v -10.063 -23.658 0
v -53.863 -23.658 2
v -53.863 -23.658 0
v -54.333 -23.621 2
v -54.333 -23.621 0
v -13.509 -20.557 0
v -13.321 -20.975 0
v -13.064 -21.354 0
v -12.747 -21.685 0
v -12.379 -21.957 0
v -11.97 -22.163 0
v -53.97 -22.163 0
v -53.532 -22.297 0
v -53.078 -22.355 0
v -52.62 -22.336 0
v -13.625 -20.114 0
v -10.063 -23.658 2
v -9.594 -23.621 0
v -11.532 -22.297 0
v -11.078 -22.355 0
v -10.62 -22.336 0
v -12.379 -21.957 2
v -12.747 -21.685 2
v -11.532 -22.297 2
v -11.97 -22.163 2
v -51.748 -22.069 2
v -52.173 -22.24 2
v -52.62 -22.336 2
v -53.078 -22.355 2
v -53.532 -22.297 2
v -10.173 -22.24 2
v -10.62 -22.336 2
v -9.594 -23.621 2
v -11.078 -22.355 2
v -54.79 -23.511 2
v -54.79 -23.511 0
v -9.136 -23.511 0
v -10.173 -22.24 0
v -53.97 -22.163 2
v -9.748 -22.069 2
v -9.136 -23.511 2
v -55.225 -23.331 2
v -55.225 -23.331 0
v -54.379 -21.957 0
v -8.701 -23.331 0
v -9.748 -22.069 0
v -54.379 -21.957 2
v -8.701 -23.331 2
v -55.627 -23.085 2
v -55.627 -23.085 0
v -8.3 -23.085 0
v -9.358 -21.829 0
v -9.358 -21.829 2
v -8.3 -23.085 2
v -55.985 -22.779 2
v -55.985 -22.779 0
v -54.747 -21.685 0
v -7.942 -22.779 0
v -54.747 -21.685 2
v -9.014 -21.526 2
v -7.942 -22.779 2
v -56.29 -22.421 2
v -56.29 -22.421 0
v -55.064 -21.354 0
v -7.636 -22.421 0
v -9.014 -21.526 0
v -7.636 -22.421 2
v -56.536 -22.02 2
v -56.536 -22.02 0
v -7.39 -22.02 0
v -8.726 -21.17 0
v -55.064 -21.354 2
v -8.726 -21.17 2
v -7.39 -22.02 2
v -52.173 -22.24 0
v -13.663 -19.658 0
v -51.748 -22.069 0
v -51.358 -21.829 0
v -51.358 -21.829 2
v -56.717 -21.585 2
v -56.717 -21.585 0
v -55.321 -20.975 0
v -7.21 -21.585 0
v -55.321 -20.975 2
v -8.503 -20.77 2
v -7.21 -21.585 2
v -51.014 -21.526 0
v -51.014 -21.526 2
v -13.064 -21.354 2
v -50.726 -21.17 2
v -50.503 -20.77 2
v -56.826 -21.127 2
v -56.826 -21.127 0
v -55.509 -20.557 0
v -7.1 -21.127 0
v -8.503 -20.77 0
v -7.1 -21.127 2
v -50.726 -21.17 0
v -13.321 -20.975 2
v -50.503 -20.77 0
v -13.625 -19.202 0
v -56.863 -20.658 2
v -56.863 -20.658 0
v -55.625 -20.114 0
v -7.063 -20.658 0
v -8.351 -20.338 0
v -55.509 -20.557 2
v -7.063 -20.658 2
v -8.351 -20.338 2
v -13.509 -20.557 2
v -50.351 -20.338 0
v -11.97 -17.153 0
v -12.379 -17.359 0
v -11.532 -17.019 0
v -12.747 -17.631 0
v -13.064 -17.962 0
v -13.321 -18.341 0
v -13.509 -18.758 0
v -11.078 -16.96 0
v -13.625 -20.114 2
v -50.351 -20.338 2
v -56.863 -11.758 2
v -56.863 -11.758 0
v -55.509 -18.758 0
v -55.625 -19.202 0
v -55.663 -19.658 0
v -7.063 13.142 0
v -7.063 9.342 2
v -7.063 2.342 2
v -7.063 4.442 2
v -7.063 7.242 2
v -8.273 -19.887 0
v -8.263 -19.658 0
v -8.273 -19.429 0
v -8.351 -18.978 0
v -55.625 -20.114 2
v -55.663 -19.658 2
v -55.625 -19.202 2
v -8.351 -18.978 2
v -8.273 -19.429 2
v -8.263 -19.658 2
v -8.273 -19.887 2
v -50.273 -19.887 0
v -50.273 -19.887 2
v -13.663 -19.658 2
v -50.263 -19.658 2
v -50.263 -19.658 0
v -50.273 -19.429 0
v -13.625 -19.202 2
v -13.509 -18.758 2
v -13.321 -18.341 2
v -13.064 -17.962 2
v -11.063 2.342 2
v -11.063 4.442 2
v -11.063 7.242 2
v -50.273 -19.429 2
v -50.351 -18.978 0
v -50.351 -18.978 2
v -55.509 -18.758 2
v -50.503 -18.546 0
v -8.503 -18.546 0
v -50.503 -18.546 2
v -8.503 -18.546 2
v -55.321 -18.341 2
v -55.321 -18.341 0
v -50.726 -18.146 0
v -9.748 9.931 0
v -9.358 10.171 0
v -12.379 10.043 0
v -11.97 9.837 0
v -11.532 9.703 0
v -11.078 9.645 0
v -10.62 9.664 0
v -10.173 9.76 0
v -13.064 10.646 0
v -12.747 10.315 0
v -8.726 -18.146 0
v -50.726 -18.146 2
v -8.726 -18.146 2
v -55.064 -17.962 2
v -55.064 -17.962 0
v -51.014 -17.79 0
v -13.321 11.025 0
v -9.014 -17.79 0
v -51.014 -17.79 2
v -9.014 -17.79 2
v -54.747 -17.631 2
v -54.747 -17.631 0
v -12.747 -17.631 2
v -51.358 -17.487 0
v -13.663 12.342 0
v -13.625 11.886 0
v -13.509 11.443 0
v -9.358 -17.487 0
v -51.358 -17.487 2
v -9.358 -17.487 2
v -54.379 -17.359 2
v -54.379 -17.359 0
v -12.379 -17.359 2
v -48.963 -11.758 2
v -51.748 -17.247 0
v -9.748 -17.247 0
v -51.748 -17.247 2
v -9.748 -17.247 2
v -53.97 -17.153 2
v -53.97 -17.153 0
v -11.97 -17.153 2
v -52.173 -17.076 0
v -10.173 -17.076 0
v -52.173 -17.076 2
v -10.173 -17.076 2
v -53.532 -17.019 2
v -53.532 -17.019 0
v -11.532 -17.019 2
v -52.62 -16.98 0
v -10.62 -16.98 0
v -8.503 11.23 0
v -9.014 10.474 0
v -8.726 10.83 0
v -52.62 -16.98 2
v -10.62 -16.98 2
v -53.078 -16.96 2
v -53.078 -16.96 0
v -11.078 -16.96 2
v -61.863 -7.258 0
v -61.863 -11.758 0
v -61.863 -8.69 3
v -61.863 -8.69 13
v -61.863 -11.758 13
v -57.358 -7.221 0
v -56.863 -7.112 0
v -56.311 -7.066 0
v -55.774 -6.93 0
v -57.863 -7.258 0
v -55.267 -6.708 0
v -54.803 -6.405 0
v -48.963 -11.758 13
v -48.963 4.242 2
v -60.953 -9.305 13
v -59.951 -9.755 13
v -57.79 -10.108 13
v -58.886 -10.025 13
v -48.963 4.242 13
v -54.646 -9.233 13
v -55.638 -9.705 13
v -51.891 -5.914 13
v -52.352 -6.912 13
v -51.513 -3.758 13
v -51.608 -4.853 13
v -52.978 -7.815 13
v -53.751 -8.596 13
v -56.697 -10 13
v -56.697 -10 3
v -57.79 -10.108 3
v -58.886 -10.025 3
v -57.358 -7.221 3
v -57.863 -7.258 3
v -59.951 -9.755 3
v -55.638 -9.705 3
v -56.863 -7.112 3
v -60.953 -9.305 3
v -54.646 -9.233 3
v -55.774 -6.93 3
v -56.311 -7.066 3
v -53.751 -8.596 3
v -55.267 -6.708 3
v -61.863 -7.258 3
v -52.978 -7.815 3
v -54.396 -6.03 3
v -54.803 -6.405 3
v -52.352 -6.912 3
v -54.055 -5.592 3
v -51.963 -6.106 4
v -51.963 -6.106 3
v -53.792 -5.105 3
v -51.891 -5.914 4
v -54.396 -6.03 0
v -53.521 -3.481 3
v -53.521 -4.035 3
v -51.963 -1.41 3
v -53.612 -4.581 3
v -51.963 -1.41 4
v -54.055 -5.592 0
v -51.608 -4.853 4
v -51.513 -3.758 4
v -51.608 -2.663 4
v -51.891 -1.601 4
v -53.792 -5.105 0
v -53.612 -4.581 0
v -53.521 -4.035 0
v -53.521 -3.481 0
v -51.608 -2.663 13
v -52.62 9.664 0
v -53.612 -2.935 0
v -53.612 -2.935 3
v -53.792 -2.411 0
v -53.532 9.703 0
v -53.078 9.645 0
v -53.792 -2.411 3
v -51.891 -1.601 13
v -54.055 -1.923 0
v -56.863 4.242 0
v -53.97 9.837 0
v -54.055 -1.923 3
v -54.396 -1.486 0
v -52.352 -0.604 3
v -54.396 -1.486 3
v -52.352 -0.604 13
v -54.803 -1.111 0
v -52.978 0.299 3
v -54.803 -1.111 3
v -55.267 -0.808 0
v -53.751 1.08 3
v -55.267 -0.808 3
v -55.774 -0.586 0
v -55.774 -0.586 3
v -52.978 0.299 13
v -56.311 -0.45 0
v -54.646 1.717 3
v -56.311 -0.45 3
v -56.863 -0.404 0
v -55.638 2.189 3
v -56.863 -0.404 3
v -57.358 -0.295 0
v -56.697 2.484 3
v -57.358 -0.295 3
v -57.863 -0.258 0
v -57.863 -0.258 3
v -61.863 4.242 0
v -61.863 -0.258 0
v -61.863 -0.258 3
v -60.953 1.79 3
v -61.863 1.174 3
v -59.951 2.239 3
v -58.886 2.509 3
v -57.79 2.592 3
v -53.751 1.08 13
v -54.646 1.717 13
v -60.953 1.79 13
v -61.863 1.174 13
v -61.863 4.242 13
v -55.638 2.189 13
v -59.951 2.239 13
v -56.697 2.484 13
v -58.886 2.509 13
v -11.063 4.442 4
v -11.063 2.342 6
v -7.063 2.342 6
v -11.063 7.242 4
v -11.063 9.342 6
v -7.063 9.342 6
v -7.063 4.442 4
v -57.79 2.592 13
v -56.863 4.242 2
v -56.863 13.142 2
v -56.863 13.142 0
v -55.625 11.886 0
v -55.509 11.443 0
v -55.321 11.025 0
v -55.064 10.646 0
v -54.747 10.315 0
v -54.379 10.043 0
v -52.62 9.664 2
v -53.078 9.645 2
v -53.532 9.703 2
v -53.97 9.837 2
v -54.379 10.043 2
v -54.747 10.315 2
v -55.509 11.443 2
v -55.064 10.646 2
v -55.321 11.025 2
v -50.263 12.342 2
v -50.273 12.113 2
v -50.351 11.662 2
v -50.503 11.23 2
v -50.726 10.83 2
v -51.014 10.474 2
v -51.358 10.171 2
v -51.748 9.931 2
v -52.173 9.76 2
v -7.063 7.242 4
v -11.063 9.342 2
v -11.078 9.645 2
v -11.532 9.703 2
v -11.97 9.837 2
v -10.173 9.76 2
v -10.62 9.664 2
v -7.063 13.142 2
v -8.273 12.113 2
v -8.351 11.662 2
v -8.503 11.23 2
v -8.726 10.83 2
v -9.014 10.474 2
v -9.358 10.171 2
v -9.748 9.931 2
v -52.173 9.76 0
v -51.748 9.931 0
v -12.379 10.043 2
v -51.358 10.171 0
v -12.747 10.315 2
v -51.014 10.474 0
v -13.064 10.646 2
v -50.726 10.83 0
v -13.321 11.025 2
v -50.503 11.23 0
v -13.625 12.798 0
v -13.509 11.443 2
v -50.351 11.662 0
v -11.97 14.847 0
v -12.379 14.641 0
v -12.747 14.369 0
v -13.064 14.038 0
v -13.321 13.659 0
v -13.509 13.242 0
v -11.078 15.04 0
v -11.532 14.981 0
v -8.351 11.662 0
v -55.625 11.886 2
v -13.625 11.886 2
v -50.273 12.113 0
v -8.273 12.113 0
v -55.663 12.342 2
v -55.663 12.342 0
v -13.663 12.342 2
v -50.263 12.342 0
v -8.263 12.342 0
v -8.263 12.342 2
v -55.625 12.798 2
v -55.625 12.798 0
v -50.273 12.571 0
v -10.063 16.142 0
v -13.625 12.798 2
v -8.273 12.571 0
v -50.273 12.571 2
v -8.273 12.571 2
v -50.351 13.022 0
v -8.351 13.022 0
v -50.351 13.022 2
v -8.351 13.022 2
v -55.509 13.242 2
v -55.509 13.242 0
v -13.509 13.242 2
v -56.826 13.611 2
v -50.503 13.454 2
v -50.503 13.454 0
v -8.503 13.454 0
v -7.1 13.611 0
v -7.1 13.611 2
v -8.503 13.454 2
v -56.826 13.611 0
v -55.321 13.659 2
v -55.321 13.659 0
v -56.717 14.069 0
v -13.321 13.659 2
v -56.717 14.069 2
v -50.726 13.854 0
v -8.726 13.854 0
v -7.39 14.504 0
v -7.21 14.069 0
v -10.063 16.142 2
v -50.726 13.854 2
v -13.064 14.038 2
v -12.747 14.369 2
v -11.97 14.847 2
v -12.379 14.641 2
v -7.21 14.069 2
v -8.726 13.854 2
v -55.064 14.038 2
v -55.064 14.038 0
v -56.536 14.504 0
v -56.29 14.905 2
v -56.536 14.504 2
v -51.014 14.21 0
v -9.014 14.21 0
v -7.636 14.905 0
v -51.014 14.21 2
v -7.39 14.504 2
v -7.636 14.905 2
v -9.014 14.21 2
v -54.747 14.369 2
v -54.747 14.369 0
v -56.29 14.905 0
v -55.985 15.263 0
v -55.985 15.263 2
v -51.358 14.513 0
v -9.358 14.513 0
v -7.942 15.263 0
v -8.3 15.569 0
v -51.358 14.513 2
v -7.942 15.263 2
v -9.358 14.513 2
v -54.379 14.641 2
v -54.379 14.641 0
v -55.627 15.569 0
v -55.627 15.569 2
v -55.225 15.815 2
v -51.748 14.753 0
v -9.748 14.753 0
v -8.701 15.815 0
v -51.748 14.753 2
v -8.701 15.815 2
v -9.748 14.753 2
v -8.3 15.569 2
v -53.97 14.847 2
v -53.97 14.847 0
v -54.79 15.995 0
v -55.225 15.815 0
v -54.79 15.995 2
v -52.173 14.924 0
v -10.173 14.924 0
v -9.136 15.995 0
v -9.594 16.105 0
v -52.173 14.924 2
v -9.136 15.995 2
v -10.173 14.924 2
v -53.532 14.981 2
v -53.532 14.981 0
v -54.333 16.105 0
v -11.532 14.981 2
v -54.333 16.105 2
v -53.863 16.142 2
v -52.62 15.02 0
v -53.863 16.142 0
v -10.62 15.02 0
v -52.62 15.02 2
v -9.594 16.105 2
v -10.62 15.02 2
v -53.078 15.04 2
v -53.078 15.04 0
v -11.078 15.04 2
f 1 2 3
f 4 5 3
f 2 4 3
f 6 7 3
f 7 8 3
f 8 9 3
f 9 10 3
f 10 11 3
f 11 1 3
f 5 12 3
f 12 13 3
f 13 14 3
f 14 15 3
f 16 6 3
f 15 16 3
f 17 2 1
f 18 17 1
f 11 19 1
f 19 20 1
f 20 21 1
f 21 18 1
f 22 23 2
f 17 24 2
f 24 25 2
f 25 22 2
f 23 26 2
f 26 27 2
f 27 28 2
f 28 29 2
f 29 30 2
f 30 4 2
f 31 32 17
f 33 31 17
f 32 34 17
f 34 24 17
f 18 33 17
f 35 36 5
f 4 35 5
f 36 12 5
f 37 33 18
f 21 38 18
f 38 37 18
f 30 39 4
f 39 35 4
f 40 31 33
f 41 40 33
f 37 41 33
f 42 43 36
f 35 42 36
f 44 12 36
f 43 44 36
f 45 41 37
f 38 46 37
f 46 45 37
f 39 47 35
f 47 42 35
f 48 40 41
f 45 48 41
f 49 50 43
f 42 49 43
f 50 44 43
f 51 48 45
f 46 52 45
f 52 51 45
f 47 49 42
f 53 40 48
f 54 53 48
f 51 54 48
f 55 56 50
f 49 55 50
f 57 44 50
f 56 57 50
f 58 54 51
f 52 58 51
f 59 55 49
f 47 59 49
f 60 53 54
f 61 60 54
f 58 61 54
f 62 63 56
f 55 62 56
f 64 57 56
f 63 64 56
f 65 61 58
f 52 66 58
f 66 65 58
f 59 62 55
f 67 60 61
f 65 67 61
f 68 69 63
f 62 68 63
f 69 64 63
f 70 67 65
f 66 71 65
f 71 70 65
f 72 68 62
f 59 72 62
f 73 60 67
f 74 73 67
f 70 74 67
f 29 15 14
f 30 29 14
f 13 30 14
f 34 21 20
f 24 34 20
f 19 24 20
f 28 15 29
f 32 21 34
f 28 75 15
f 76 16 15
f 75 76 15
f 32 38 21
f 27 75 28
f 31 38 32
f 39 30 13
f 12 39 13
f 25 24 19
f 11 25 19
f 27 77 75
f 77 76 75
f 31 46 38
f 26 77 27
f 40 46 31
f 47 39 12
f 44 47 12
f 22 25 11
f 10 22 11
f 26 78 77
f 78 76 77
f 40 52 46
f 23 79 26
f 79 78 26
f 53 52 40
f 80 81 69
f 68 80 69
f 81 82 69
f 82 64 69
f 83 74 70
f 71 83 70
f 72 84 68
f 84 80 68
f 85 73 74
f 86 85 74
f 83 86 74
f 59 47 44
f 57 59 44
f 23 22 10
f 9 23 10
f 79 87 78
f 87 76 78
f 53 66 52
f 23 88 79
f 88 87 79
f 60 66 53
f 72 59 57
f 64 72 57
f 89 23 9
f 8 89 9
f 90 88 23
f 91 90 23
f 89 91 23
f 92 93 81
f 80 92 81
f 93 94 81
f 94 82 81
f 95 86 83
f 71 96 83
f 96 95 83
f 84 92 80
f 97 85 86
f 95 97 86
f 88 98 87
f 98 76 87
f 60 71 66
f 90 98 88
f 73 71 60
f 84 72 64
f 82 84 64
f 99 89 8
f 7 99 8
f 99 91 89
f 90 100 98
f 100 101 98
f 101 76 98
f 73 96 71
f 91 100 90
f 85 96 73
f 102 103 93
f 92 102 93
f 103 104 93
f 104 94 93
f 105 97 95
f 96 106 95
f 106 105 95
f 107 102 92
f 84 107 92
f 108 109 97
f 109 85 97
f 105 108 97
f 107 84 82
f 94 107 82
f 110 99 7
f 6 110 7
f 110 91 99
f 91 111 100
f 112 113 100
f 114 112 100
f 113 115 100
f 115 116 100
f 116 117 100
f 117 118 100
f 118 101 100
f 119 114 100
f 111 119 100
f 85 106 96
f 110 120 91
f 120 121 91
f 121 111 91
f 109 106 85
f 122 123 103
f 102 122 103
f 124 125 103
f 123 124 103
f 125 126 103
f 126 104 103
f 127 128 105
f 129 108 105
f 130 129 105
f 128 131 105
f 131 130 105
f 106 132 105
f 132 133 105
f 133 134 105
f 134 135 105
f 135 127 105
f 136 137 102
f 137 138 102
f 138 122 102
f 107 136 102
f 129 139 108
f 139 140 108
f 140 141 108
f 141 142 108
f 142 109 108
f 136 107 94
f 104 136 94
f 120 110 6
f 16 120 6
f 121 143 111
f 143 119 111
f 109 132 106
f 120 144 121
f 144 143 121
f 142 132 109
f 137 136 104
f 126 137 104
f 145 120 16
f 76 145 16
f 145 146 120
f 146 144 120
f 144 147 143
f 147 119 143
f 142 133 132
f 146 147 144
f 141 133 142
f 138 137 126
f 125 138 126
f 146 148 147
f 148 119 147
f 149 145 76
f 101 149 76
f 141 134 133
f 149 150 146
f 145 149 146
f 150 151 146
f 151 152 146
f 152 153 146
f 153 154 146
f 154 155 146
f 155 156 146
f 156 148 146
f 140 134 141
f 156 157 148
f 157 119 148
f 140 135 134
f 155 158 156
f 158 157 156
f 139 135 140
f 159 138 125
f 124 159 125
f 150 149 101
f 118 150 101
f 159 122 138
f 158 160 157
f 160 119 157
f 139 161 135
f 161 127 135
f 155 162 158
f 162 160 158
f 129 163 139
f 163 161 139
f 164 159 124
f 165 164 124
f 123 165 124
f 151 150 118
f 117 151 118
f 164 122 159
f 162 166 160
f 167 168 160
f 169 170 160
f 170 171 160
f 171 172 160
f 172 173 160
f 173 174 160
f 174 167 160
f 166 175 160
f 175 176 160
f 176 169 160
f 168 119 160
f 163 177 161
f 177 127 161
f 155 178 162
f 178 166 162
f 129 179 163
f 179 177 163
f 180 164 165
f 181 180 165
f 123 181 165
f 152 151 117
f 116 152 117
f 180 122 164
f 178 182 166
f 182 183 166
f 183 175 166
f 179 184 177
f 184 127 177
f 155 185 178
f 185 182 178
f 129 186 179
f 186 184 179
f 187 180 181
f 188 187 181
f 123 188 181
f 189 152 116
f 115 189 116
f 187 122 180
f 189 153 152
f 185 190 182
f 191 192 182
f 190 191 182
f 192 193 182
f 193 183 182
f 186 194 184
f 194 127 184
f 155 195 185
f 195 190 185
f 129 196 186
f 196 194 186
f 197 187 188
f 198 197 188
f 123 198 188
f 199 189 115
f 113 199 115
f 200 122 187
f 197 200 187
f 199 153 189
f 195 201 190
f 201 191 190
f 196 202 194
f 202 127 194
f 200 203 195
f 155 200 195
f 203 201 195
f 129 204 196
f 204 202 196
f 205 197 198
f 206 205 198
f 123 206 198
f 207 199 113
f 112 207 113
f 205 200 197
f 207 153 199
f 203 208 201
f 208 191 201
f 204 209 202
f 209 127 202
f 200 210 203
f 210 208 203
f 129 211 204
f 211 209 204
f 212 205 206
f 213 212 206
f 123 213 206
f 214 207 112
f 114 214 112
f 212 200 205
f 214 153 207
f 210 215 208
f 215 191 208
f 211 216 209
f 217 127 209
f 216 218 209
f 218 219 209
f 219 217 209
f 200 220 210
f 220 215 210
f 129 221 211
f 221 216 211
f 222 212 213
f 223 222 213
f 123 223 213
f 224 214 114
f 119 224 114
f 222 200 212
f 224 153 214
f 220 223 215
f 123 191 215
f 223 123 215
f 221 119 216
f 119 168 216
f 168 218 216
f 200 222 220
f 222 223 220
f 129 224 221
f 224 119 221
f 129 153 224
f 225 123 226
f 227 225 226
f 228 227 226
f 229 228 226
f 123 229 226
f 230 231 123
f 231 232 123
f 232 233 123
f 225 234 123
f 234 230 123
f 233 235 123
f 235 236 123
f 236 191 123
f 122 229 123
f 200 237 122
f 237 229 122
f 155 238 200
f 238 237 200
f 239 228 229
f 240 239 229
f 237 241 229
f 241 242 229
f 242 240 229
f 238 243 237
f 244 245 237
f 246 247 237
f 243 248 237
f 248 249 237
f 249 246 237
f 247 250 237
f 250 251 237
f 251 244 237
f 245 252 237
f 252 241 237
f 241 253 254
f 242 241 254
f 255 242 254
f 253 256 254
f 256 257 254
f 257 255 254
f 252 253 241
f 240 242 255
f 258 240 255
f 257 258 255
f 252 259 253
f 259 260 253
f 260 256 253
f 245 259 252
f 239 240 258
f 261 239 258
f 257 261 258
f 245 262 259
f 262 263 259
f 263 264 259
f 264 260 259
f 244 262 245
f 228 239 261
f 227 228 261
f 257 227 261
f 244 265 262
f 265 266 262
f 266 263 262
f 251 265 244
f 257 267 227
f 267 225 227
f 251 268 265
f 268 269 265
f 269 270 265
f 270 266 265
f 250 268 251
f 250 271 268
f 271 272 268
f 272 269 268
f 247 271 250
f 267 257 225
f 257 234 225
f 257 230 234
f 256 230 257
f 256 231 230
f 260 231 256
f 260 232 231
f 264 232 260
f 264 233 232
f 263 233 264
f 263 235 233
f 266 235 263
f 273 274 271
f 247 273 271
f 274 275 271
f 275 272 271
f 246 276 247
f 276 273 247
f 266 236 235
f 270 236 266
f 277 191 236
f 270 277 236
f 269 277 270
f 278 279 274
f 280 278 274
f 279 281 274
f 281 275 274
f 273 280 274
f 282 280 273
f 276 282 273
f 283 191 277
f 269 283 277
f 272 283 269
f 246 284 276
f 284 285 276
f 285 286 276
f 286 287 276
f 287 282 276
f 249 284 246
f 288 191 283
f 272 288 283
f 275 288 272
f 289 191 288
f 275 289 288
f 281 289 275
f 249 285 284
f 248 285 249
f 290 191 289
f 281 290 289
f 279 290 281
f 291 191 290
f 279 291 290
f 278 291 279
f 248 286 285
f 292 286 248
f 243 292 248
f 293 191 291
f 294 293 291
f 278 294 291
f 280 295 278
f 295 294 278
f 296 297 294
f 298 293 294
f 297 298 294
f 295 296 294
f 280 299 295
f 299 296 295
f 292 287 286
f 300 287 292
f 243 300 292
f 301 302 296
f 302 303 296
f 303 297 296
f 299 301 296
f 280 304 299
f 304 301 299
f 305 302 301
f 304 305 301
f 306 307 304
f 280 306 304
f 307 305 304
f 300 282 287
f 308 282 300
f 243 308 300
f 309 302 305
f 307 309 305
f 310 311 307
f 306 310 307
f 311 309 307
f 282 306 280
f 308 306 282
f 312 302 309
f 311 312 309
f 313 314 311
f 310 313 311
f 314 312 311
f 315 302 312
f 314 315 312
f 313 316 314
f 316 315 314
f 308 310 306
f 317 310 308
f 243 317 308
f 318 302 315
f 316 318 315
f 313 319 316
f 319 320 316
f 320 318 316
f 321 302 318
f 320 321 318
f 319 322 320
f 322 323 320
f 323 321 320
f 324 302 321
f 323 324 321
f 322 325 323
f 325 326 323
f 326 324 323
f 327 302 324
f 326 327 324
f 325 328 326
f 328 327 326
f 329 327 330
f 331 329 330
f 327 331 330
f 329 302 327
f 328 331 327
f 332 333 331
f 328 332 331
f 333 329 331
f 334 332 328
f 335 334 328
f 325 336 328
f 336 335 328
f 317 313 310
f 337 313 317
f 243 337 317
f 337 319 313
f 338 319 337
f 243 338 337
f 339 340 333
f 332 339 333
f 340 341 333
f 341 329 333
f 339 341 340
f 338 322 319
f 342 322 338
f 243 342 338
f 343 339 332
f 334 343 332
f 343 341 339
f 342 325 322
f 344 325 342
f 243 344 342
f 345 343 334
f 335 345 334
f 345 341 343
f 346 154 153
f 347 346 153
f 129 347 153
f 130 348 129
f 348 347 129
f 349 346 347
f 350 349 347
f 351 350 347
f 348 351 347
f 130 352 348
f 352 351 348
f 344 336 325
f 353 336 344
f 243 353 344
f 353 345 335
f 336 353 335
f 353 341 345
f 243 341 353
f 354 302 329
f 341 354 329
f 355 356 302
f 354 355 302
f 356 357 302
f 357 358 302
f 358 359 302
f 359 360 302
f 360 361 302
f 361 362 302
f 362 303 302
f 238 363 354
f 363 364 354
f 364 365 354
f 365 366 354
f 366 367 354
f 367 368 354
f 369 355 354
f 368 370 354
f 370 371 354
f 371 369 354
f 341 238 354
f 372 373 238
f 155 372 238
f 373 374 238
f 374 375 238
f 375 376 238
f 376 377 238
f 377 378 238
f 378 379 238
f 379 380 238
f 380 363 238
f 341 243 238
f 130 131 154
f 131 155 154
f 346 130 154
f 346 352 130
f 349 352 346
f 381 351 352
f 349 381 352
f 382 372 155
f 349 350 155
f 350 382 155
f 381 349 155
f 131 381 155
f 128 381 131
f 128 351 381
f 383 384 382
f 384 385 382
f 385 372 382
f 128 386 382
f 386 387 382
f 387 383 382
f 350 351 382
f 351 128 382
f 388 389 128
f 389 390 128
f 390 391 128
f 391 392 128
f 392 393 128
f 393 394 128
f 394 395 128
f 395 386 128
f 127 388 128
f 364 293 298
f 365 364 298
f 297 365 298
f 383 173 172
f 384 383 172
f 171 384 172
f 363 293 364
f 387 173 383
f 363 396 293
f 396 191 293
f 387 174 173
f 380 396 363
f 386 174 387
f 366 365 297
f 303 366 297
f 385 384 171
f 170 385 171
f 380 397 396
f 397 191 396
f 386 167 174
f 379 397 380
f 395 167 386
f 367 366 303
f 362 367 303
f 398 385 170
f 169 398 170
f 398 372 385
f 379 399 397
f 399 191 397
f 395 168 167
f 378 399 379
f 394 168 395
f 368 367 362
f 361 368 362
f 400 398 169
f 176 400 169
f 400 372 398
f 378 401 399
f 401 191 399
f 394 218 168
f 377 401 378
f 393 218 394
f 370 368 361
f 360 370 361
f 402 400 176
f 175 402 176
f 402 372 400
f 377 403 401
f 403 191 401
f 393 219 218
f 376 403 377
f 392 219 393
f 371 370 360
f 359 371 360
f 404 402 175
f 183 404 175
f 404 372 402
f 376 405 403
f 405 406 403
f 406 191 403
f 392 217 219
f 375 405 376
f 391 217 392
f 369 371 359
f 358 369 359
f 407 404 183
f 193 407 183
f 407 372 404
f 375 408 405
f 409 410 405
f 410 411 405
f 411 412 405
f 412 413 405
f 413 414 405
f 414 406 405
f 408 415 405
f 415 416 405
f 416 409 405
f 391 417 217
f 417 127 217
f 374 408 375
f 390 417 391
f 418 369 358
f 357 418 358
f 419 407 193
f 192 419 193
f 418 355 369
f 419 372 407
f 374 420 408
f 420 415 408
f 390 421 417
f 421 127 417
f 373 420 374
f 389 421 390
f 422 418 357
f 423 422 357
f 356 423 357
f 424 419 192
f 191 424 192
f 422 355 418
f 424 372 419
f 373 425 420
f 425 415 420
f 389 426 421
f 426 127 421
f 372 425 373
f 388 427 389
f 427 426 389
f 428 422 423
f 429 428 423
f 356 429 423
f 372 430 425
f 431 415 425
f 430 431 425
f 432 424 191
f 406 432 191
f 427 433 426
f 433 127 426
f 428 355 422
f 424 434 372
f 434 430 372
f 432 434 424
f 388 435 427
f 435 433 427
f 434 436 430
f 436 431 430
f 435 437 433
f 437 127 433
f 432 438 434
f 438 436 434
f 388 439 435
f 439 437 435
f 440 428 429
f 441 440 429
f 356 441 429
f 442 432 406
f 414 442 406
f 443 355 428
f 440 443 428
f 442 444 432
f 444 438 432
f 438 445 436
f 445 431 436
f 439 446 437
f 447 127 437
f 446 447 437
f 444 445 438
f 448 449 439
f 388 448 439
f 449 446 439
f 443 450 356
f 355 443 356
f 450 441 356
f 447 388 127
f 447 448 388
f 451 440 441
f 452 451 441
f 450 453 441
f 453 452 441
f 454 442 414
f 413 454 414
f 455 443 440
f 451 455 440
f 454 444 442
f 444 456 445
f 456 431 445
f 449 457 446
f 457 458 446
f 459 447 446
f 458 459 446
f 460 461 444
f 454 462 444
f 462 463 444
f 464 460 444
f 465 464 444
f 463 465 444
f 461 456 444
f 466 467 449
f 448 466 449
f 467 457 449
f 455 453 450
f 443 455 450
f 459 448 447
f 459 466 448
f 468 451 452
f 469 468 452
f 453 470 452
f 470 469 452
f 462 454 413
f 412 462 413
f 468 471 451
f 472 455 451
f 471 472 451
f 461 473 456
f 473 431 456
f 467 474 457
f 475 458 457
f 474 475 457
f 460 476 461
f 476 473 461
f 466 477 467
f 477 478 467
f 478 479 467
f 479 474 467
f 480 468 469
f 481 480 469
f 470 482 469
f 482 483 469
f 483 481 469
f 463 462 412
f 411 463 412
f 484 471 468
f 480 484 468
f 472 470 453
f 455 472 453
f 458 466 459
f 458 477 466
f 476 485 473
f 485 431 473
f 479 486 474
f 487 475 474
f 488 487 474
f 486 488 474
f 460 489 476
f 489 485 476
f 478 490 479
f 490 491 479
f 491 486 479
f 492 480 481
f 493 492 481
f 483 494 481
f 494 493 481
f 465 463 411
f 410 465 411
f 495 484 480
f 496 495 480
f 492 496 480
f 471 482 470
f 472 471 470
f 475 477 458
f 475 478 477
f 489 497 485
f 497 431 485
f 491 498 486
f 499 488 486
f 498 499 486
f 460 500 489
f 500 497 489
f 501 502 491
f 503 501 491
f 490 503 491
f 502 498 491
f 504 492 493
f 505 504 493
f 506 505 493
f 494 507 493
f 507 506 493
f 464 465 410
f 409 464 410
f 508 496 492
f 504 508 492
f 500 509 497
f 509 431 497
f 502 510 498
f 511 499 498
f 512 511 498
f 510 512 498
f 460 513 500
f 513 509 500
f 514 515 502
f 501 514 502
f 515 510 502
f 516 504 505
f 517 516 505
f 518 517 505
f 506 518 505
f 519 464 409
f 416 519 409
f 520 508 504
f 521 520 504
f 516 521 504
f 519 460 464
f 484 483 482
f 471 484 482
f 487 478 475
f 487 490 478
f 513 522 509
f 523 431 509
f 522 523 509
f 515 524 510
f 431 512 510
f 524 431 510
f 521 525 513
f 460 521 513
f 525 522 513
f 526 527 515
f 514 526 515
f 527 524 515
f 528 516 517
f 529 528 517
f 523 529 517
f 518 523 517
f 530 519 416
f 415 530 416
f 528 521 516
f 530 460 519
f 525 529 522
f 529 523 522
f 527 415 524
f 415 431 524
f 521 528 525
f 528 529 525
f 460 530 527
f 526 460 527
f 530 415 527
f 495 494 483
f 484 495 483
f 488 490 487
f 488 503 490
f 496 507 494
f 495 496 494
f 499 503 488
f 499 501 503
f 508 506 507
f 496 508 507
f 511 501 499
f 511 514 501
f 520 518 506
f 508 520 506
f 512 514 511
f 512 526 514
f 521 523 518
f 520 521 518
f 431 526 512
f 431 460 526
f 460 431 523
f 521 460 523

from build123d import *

# Parameters (mm, degrees)
CROQUIS1_W              = 49.8
CROQUIS1_H              = 39.8
CROQUIS1_R              = 2.7
SALIENTE_EXTRUIR1_DEPTH = 6
CORTAR_EXTRUIR1_DEPTH   = 4
REDONDEO1_R             = 3
SALIENTE_EXTRUIR3_DEPTH = 3
CROQUIS5_R              = 6.35
CORTAR_EXTRUIR2_DEPTH   = 3
SALIENTE_EXTRUIR4_DEPTH = 10
SALIENTE_EXTRUIR5_DEPTH = 2
CORTAR_EXTRUIR3_START   = -3
CORTAR_EXTRUIR3_DEPTH   = 3
CORTAR_EXTRUIR4_DEPTH   = 4
CROQUIS10_W             = 4
CROQUIS10_H             = 7
SALIENTE_EXTRUIR6_DEPTH = 4
CORTAR_EXTRUIR5_START   = -4
CORTAR_EXTRUIR5_DEPTH   = 4


with BuildPart() as part:
    # Croquis1 → Saliente-Extruir1 (new body)
    with BuildSketch(Plane.XY):
        with Locations((-31.963412372, -3.757931034)):
            Rectangle(CROQUIS1_W, CROQUIS1_H)
        with Locations((-52.963412372, 12.342068966)):
            Circle(CROQUIS1_R, mode=Mode.SUBTRACT)
        with Locations((-10.963412372, 12.342068966)):
            Circle(CROQUIS1_R, mode=Mode.SUBTRACT)
        with Locations((-10.963412372, -19.657931034)):
            Circle(CROQUIS1_R, mode=Mode.SUBTRACT)
        with Locations((-52.963412372, -19.657931034)):
            Circle(CROQUIS1_R, mode=Mode.SUBTRACT)
    extrude(amount=SALIENTE_EXTRUIR1_DEPTH)

    # Croquis2 → Cortar-Extruir1 (cut)
    with BuildSketch(Plane.XY.offset(6)):
        with BuildLine():
            Line((-49.963412372, -16.757931034), (-13.963412372, -16.757931034))
            ThreePointArc((-13.963412372, -16.757931034), (-12.54919881, -16.172144597), (-11.963412372, -14.757931034))
            Line((-11.963412372, -14.757931034), (-11.963412372, 7.242068966))
            ThreePointArc((-11.963412372, 7.242068966), (-12.54919881, 8.656282528), (-13.963412372, 9.242068966))
            Line((-13.963412372, 9.242068966), (-49.963412372, 9.242068966))
            ThreePointArc((-49.963412372, 9.242068966), (-51.377625934, 8.656282528), (-51.963412372, 7.242068966))
            Line((-51.963412372, 7.242068966), (-51.963412372, -14.757931034))
            ThreePointArc((-51.963412372, -14.757931034), (-51.377625934, -16.172144597), (-49.963412372, -16.757931034))
        make_face()
    extrude(amount=-CORTAR_EXTRUIR1_DEPTH, mode=Mode.SUBTRACT)

    # Redondeo1
    redondeo1_edges = [part.edges().sort_by_distance(p)[0] for p in [
        (-56.863412372, 16.142068966, 3),
        (-7.063412372, 16.142068966, 3),
        (-7.063412372, -23.657931034, 3),
        (-56.863412372, -23.657931034, 3),
    ]]
    fillet(redondeo1_edges, radius=REDONDEO1_R)

    # Croquis4 → Saliente-Extruir3 (add)
    with BuildSketch(Plane(origin=(0, 0, 0), x_dir=(-1, 0, 0), z_dir=(0, 0, -1))):
        with BuildLine():
            Line((56.863412372, 4.242068966), (61.863412372, 4.242068966))
            Line((61.863412372, 4.242068966), (61.863412372, -0.257931034))
            Line((61.863412372, -0.257931034), (57.863412372, -0.257931034))
            ThreePointArc((57.863412372, -0.257931034), (57.358118834, -0.294597605), (56.863412372, -0.403829068))
            Line((56.863412372, -0.403829068), (56.863412372, 4.242068966))
        make_face()
        with BuildLine():
            Line((61.863412372, -11.757931034), (56.863412372, -11.757931034))
            Line((56.863412372, -11.757931034), (56.863412372, -7.112033001))
            ThreePointArc((56.863412372, -7.112033001), (57.358118834, -7.221264464), (57.863412372, -7.257931034))
            Line((57.863412372, -7.257931034), (61.863412372, -7.257931034))
            Line((61.863412372, -7.257931034), (61.863412372, -11.757931034))
        make_face()
    extrude(amount=-SALIENTE_EXTRUIR3_DEPTH)

    # Croquis5 → Cortar-Extruir2 (cut)
    with BuildSketch(Plane.XY.offset(3)):
        with Locations((-57.863412372, -3.757931034)):
            Circle(CROQUIS5_R)
    extrude(amount=CORTAR_EXTRUIR2_DEPTH, mode=Mode.SUBTRACT)

    # Croquis6 → Saliente-Extruir4 (add)
    with BuildSketch(Plane.XY.offset(3)):
        with BuildLine():
            Line((-61.863412372, 4.242068966), (-51.963412372, 4.242068966))
            Line((-51.963412372, 4.242068966), (-48.963412372, 4.242068966))
            Line((-48.963412372, 4.242068966), (-48.963412372, -11.757931034))
            Line((-48.963412372, -11.757931034), (-51.963412372, -11.757931034))
            Line((-51.963412372, -11.757931034), (-61.863412372, -11.757931034))
            Line((-61.863412372, -11.757931034), (-61.863412372, -8.689715701))
            ThreePointArc((-61.863412372, -8.689715701), (-51.513412372, -3.757931034), (-61.863412372, 1.173853632))
            Line((-61.863412372, 1.173853632), (-61.863412372, 4.242068966))
        make_face()
    extrude(amount=SALIENTE_EXTRUIR4_DEPTH)

    # Croquis7 → Saliente-Extruir5 (add)
    with BuildSketch(Plane.XY.offset(2)):
        Polygon((-51.963412372, -3.757931034), (-51.963412372, 4.242068966), (-48.963412372, 4.242068966), (-48.963412372, -11.757931034), (-51.963412372, -11.757931034), align=None)
    extrude(amount=SALIENTE_EXTRUIR5_DEPTH)

    # Croquis8 → Cortar-Extruir3 (cut)
    with BuildSketch(Plane.XY.offset(3).offset(CORTAR_EXTRUIR3_START)):
        with BuildLine():
            Line((-56.863412372, -0.403829068), (-56.863412372, -7.112033001))
            ThreePointArc((-56.863412372, -7.112033001), (-53.509310406, -3.757931034), (-56.863412372, -0.403829068))
        make_face()
    extrude(amount=CORTAR_EXTRUIR3_DEPTH, mode=Mode.SUBTRACT)

    # Croquis9 → Cortar-Extruir4 (cut)
    with BuildSketch(Plane.XY.offset(6)):
        Polygon((-56.863412372, -11.757931034), (-56.863412372, -27.492217147), (-1.817084798, -27.492217147), (-1.817084798, 22.861833321), (-56.863412372, 22.861833321), (-56.863412372, 4.242068966), (-47.172737702, 4.242068966), (-47.172737702, -11.757931034), align=None)
    extrude(amount=-CORTAR_EXTRUIR4_DEPTH, mode=Mode.SUBTRACT)

    # Croquis10 → Saliente-Extruir6 (add)
    with BuildSketch(Plane.XY.offset(2)):
        with Locations((-9.063412372, 5.842068966)):
            Rectangle(CROQUIS10_W, CROQUIS10_H)
    extrude(amount=SALIENTE_EXTRUIR6_DEPTH)

    # Croquis11 → Cortar-Extruir5 (cut)
    with BuildSketch(Plane(origin=(-7.063412372, 0, 0), x_dir=(0, 0, -1), z_dir=(1, 0, 0)).offset(CORTAR_EXTRUIR5_START)):
        Polygon((-2, 5.842068966), (-2, 7.242068966), (-4, 7.242068966), (-4, 4.442068966), (-2, 4.442068966), align=None)
    extrude(amount=CORTAR_EXTRUIR5_DEPTH, mode=Mode.SUBTRACT)


solid = part.part
